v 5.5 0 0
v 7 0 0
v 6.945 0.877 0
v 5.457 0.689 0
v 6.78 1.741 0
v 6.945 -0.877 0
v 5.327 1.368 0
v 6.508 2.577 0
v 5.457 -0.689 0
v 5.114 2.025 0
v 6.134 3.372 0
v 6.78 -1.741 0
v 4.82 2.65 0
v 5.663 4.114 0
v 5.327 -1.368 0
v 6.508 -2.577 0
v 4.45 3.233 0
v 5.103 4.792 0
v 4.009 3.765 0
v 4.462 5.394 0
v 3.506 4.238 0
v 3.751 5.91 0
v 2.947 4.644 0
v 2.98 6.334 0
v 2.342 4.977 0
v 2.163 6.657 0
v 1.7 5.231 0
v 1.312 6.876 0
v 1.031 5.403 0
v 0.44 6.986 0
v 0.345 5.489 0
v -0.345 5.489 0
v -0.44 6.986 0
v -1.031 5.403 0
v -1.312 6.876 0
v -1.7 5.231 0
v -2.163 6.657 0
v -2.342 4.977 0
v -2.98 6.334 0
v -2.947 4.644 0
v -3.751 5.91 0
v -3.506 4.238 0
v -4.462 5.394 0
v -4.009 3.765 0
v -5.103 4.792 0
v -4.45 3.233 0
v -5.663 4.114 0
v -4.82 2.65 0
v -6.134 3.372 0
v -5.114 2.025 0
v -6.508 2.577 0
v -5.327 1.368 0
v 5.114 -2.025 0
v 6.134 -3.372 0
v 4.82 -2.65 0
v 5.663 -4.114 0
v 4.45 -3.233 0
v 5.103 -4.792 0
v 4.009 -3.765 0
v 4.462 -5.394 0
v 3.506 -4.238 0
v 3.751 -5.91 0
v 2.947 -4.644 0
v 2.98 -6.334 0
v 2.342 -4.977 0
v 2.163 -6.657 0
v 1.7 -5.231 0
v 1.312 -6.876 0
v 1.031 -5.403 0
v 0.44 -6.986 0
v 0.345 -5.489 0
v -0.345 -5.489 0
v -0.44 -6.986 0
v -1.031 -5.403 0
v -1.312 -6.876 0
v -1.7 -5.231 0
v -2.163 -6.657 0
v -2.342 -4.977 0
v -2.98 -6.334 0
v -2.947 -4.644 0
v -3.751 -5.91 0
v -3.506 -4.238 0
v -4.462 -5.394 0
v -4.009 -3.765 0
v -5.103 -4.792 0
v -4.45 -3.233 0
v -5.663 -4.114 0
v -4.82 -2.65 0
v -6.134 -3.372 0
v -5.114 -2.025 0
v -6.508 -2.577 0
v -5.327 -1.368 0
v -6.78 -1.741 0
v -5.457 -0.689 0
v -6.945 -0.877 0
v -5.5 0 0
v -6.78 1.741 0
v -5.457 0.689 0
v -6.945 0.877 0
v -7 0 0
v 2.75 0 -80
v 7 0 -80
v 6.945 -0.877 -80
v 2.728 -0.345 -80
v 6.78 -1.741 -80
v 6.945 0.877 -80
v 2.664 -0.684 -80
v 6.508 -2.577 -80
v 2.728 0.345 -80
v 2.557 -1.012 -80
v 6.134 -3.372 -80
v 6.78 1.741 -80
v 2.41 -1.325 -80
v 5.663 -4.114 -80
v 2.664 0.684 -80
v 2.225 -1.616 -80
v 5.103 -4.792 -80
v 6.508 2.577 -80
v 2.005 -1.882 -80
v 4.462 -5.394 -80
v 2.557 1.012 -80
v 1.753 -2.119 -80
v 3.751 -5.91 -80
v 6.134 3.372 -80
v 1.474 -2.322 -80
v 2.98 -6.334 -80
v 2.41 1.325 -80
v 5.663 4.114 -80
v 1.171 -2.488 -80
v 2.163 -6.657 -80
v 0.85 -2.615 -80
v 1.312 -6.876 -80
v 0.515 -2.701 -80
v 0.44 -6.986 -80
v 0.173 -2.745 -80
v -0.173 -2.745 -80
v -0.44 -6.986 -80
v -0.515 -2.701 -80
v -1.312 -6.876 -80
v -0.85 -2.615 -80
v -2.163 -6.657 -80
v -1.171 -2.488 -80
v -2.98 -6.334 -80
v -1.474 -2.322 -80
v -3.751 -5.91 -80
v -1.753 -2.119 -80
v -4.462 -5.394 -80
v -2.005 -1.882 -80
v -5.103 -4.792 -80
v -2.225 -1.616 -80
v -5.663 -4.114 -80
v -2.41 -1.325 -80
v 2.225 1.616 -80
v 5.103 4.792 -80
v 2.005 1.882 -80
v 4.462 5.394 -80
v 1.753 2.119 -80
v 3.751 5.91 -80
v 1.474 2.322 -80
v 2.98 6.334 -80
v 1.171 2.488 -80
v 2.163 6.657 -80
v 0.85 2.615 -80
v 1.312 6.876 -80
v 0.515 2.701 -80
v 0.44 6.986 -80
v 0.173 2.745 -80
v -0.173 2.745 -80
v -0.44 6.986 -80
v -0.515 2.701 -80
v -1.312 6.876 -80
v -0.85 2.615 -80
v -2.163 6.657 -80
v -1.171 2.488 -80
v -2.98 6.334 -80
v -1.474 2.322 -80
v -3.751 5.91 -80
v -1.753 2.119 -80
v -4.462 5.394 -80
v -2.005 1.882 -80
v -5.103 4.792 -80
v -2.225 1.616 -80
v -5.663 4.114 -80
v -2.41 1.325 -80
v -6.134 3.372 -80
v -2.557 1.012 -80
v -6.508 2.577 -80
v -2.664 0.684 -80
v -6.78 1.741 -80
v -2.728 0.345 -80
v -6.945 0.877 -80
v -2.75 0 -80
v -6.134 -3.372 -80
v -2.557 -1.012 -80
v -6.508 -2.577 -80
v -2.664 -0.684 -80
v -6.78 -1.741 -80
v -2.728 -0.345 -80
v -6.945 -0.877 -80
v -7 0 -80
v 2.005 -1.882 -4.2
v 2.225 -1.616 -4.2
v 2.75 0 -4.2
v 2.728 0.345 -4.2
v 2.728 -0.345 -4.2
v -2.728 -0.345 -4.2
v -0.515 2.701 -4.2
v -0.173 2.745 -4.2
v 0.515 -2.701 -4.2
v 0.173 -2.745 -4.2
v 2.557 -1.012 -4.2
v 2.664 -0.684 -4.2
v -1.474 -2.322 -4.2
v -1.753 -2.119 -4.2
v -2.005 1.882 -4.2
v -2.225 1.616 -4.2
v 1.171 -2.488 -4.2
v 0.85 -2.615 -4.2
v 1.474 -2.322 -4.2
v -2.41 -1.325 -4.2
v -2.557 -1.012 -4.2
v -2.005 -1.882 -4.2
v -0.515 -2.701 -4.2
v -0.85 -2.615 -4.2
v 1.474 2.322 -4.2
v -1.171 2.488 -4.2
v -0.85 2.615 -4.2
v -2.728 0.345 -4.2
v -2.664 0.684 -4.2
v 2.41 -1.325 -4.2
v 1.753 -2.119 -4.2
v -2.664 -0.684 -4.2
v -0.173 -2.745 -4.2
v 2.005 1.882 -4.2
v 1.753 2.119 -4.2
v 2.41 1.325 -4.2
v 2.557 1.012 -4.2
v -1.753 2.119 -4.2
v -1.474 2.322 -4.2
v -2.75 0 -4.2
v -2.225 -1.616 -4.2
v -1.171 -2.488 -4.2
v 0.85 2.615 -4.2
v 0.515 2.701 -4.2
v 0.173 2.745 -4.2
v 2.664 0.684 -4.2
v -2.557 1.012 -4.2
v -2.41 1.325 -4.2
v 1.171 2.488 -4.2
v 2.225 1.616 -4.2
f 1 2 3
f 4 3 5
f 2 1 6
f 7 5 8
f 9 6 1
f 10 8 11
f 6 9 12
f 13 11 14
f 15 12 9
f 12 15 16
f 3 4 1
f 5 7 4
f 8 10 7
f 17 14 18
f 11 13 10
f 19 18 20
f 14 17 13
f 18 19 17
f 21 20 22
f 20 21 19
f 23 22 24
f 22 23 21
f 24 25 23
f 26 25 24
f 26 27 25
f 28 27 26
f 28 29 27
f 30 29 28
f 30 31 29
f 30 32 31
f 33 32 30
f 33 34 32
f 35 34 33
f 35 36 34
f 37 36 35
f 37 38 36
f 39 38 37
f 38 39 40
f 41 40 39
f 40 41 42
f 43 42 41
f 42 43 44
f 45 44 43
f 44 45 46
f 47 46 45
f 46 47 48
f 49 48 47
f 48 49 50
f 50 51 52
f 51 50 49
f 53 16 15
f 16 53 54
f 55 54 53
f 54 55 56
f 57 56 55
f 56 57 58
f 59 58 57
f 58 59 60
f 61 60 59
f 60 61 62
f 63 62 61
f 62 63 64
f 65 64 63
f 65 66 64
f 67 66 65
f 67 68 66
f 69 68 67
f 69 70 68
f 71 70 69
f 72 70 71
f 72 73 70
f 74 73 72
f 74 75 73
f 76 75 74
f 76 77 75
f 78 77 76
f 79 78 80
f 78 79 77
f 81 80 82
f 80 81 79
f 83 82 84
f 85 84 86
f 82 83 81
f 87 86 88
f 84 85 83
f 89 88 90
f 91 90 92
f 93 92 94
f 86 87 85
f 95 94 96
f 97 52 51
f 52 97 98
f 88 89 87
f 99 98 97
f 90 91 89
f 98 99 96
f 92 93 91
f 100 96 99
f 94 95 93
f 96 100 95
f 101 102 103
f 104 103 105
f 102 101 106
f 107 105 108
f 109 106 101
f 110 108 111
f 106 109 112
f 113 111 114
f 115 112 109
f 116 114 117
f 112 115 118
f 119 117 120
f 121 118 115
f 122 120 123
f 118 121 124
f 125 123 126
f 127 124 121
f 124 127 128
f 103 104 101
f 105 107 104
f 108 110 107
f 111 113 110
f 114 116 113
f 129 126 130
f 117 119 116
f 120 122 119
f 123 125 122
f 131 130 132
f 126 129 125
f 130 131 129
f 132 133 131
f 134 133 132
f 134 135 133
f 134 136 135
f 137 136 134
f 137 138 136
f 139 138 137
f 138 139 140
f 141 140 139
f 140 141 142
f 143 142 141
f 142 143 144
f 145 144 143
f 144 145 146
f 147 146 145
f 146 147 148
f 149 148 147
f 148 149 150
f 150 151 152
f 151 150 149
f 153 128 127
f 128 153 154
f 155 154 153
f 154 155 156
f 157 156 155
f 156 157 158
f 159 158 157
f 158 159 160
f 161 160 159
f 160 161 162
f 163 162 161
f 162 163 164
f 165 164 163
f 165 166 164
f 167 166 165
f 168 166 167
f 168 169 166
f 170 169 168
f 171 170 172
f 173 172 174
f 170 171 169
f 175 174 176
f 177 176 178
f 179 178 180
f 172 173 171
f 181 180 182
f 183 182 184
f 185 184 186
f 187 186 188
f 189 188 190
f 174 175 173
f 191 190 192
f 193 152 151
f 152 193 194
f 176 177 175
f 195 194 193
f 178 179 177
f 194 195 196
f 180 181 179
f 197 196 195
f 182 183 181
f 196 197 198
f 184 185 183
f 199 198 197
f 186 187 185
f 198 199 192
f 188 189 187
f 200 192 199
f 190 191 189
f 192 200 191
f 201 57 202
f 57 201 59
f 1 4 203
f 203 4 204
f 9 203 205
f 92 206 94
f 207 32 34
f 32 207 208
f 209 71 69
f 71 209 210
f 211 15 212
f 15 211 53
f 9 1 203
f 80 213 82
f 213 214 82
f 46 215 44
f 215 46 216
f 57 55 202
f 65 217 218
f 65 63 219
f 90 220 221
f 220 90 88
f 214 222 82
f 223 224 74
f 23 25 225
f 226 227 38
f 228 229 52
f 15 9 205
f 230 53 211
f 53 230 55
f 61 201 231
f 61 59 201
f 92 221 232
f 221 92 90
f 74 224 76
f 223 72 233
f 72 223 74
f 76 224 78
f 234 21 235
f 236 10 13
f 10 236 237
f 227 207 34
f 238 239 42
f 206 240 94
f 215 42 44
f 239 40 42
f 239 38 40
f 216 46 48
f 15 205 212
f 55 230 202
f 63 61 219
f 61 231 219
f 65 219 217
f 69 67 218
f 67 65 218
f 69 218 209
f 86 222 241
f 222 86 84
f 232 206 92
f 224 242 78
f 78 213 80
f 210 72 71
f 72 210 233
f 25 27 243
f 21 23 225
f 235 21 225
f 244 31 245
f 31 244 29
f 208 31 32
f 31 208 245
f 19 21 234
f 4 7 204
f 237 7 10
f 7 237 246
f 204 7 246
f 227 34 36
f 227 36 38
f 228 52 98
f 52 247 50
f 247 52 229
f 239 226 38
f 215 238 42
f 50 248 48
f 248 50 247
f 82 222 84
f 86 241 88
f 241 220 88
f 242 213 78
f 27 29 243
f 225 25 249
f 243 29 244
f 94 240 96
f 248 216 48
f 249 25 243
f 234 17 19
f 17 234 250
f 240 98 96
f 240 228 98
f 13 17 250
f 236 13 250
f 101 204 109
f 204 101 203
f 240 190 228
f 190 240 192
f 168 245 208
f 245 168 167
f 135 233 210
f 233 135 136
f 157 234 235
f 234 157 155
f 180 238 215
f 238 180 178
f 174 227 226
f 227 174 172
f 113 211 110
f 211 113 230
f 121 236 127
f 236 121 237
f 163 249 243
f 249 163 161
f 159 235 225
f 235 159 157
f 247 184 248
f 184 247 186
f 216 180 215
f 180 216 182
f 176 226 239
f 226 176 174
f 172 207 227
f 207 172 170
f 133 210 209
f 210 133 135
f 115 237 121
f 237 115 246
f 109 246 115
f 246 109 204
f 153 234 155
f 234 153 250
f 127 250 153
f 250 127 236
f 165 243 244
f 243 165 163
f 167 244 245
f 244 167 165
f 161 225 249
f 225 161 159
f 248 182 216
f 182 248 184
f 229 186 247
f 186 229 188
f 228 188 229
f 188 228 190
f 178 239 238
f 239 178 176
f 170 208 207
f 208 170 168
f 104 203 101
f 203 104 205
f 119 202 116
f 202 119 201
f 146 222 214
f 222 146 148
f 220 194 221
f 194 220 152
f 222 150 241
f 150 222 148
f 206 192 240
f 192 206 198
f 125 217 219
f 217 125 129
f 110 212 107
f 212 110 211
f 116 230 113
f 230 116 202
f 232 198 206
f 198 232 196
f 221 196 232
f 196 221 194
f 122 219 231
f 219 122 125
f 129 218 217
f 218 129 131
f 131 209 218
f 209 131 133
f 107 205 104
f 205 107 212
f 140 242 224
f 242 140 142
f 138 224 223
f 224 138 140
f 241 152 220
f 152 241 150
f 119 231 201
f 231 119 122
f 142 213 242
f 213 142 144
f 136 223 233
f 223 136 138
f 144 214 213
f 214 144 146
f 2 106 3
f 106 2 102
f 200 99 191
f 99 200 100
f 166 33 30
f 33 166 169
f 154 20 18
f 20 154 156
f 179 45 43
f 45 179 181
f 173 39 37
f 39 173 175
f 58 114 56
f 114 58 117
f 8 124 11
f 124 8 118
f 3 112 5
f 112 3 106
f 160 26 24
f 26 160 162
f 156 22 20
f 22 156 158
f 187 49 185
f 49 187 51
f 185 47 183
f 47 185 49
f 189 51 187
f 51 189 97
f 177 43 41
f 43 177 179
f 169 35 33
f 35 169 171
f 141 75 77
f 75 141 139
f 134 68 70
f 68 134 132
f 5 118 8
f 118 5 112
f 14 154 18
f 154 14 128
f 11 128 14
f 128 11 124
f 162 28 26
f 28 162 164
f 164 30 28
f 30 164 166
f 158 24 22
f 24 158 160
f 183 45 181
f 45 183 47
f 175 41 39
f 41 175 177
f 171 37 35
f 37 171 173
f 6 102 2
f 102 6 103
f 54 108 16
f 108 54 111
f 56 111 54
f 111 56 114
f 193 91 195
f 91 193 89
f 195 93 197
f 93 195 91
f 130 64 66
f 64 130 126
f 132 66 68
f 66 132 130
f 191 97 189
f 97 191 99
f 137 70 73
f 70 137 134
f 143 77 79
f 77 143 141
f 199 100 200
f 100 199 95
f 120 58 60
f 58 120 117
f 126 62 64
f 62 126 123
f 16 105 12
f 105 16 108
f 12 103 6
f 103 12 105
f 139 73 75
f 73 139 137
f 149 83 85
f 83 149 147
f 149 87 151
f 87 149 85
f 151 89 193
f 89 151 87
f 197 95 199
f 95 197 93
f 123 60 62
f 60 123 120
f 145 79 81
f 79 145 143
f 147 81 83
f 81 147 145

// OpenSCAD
$fn = 50;


difference() {
	union() {
		translate(v = [0, 0, -80.0000000000]) {
			cylinder(h = 80, r = 7.0000000000);
		}
		cylinder(h = 0, r = 17.0000000000);
	}
	union() {
		translate(v = [0, 0, 0]) {
			rotate(a = [0, 0, 0]) {
				difference() {
					union() {
						#translate(v = [0, 0, -80.0000000000]) {
							cylinder(h = 80, r = 2.2500000000);
						}
						#translate(v = [0, 0, -4.2000000000]) {
							cylinder(h = 4.2000000000, r1 = 2.7500000000, r2 = 5.5000000000);
						}
						#translate(v = [0, 0, -80.0000000000]) {
							cylinder(h = 80, r = 2.7500000000);
						}
						#translate(v = [0, 0, -80.0000000000]) {
							cylinder(h = 80, r = 2.2500000000);
						}
					}
					union();
				}
			}
		}
	}
}
